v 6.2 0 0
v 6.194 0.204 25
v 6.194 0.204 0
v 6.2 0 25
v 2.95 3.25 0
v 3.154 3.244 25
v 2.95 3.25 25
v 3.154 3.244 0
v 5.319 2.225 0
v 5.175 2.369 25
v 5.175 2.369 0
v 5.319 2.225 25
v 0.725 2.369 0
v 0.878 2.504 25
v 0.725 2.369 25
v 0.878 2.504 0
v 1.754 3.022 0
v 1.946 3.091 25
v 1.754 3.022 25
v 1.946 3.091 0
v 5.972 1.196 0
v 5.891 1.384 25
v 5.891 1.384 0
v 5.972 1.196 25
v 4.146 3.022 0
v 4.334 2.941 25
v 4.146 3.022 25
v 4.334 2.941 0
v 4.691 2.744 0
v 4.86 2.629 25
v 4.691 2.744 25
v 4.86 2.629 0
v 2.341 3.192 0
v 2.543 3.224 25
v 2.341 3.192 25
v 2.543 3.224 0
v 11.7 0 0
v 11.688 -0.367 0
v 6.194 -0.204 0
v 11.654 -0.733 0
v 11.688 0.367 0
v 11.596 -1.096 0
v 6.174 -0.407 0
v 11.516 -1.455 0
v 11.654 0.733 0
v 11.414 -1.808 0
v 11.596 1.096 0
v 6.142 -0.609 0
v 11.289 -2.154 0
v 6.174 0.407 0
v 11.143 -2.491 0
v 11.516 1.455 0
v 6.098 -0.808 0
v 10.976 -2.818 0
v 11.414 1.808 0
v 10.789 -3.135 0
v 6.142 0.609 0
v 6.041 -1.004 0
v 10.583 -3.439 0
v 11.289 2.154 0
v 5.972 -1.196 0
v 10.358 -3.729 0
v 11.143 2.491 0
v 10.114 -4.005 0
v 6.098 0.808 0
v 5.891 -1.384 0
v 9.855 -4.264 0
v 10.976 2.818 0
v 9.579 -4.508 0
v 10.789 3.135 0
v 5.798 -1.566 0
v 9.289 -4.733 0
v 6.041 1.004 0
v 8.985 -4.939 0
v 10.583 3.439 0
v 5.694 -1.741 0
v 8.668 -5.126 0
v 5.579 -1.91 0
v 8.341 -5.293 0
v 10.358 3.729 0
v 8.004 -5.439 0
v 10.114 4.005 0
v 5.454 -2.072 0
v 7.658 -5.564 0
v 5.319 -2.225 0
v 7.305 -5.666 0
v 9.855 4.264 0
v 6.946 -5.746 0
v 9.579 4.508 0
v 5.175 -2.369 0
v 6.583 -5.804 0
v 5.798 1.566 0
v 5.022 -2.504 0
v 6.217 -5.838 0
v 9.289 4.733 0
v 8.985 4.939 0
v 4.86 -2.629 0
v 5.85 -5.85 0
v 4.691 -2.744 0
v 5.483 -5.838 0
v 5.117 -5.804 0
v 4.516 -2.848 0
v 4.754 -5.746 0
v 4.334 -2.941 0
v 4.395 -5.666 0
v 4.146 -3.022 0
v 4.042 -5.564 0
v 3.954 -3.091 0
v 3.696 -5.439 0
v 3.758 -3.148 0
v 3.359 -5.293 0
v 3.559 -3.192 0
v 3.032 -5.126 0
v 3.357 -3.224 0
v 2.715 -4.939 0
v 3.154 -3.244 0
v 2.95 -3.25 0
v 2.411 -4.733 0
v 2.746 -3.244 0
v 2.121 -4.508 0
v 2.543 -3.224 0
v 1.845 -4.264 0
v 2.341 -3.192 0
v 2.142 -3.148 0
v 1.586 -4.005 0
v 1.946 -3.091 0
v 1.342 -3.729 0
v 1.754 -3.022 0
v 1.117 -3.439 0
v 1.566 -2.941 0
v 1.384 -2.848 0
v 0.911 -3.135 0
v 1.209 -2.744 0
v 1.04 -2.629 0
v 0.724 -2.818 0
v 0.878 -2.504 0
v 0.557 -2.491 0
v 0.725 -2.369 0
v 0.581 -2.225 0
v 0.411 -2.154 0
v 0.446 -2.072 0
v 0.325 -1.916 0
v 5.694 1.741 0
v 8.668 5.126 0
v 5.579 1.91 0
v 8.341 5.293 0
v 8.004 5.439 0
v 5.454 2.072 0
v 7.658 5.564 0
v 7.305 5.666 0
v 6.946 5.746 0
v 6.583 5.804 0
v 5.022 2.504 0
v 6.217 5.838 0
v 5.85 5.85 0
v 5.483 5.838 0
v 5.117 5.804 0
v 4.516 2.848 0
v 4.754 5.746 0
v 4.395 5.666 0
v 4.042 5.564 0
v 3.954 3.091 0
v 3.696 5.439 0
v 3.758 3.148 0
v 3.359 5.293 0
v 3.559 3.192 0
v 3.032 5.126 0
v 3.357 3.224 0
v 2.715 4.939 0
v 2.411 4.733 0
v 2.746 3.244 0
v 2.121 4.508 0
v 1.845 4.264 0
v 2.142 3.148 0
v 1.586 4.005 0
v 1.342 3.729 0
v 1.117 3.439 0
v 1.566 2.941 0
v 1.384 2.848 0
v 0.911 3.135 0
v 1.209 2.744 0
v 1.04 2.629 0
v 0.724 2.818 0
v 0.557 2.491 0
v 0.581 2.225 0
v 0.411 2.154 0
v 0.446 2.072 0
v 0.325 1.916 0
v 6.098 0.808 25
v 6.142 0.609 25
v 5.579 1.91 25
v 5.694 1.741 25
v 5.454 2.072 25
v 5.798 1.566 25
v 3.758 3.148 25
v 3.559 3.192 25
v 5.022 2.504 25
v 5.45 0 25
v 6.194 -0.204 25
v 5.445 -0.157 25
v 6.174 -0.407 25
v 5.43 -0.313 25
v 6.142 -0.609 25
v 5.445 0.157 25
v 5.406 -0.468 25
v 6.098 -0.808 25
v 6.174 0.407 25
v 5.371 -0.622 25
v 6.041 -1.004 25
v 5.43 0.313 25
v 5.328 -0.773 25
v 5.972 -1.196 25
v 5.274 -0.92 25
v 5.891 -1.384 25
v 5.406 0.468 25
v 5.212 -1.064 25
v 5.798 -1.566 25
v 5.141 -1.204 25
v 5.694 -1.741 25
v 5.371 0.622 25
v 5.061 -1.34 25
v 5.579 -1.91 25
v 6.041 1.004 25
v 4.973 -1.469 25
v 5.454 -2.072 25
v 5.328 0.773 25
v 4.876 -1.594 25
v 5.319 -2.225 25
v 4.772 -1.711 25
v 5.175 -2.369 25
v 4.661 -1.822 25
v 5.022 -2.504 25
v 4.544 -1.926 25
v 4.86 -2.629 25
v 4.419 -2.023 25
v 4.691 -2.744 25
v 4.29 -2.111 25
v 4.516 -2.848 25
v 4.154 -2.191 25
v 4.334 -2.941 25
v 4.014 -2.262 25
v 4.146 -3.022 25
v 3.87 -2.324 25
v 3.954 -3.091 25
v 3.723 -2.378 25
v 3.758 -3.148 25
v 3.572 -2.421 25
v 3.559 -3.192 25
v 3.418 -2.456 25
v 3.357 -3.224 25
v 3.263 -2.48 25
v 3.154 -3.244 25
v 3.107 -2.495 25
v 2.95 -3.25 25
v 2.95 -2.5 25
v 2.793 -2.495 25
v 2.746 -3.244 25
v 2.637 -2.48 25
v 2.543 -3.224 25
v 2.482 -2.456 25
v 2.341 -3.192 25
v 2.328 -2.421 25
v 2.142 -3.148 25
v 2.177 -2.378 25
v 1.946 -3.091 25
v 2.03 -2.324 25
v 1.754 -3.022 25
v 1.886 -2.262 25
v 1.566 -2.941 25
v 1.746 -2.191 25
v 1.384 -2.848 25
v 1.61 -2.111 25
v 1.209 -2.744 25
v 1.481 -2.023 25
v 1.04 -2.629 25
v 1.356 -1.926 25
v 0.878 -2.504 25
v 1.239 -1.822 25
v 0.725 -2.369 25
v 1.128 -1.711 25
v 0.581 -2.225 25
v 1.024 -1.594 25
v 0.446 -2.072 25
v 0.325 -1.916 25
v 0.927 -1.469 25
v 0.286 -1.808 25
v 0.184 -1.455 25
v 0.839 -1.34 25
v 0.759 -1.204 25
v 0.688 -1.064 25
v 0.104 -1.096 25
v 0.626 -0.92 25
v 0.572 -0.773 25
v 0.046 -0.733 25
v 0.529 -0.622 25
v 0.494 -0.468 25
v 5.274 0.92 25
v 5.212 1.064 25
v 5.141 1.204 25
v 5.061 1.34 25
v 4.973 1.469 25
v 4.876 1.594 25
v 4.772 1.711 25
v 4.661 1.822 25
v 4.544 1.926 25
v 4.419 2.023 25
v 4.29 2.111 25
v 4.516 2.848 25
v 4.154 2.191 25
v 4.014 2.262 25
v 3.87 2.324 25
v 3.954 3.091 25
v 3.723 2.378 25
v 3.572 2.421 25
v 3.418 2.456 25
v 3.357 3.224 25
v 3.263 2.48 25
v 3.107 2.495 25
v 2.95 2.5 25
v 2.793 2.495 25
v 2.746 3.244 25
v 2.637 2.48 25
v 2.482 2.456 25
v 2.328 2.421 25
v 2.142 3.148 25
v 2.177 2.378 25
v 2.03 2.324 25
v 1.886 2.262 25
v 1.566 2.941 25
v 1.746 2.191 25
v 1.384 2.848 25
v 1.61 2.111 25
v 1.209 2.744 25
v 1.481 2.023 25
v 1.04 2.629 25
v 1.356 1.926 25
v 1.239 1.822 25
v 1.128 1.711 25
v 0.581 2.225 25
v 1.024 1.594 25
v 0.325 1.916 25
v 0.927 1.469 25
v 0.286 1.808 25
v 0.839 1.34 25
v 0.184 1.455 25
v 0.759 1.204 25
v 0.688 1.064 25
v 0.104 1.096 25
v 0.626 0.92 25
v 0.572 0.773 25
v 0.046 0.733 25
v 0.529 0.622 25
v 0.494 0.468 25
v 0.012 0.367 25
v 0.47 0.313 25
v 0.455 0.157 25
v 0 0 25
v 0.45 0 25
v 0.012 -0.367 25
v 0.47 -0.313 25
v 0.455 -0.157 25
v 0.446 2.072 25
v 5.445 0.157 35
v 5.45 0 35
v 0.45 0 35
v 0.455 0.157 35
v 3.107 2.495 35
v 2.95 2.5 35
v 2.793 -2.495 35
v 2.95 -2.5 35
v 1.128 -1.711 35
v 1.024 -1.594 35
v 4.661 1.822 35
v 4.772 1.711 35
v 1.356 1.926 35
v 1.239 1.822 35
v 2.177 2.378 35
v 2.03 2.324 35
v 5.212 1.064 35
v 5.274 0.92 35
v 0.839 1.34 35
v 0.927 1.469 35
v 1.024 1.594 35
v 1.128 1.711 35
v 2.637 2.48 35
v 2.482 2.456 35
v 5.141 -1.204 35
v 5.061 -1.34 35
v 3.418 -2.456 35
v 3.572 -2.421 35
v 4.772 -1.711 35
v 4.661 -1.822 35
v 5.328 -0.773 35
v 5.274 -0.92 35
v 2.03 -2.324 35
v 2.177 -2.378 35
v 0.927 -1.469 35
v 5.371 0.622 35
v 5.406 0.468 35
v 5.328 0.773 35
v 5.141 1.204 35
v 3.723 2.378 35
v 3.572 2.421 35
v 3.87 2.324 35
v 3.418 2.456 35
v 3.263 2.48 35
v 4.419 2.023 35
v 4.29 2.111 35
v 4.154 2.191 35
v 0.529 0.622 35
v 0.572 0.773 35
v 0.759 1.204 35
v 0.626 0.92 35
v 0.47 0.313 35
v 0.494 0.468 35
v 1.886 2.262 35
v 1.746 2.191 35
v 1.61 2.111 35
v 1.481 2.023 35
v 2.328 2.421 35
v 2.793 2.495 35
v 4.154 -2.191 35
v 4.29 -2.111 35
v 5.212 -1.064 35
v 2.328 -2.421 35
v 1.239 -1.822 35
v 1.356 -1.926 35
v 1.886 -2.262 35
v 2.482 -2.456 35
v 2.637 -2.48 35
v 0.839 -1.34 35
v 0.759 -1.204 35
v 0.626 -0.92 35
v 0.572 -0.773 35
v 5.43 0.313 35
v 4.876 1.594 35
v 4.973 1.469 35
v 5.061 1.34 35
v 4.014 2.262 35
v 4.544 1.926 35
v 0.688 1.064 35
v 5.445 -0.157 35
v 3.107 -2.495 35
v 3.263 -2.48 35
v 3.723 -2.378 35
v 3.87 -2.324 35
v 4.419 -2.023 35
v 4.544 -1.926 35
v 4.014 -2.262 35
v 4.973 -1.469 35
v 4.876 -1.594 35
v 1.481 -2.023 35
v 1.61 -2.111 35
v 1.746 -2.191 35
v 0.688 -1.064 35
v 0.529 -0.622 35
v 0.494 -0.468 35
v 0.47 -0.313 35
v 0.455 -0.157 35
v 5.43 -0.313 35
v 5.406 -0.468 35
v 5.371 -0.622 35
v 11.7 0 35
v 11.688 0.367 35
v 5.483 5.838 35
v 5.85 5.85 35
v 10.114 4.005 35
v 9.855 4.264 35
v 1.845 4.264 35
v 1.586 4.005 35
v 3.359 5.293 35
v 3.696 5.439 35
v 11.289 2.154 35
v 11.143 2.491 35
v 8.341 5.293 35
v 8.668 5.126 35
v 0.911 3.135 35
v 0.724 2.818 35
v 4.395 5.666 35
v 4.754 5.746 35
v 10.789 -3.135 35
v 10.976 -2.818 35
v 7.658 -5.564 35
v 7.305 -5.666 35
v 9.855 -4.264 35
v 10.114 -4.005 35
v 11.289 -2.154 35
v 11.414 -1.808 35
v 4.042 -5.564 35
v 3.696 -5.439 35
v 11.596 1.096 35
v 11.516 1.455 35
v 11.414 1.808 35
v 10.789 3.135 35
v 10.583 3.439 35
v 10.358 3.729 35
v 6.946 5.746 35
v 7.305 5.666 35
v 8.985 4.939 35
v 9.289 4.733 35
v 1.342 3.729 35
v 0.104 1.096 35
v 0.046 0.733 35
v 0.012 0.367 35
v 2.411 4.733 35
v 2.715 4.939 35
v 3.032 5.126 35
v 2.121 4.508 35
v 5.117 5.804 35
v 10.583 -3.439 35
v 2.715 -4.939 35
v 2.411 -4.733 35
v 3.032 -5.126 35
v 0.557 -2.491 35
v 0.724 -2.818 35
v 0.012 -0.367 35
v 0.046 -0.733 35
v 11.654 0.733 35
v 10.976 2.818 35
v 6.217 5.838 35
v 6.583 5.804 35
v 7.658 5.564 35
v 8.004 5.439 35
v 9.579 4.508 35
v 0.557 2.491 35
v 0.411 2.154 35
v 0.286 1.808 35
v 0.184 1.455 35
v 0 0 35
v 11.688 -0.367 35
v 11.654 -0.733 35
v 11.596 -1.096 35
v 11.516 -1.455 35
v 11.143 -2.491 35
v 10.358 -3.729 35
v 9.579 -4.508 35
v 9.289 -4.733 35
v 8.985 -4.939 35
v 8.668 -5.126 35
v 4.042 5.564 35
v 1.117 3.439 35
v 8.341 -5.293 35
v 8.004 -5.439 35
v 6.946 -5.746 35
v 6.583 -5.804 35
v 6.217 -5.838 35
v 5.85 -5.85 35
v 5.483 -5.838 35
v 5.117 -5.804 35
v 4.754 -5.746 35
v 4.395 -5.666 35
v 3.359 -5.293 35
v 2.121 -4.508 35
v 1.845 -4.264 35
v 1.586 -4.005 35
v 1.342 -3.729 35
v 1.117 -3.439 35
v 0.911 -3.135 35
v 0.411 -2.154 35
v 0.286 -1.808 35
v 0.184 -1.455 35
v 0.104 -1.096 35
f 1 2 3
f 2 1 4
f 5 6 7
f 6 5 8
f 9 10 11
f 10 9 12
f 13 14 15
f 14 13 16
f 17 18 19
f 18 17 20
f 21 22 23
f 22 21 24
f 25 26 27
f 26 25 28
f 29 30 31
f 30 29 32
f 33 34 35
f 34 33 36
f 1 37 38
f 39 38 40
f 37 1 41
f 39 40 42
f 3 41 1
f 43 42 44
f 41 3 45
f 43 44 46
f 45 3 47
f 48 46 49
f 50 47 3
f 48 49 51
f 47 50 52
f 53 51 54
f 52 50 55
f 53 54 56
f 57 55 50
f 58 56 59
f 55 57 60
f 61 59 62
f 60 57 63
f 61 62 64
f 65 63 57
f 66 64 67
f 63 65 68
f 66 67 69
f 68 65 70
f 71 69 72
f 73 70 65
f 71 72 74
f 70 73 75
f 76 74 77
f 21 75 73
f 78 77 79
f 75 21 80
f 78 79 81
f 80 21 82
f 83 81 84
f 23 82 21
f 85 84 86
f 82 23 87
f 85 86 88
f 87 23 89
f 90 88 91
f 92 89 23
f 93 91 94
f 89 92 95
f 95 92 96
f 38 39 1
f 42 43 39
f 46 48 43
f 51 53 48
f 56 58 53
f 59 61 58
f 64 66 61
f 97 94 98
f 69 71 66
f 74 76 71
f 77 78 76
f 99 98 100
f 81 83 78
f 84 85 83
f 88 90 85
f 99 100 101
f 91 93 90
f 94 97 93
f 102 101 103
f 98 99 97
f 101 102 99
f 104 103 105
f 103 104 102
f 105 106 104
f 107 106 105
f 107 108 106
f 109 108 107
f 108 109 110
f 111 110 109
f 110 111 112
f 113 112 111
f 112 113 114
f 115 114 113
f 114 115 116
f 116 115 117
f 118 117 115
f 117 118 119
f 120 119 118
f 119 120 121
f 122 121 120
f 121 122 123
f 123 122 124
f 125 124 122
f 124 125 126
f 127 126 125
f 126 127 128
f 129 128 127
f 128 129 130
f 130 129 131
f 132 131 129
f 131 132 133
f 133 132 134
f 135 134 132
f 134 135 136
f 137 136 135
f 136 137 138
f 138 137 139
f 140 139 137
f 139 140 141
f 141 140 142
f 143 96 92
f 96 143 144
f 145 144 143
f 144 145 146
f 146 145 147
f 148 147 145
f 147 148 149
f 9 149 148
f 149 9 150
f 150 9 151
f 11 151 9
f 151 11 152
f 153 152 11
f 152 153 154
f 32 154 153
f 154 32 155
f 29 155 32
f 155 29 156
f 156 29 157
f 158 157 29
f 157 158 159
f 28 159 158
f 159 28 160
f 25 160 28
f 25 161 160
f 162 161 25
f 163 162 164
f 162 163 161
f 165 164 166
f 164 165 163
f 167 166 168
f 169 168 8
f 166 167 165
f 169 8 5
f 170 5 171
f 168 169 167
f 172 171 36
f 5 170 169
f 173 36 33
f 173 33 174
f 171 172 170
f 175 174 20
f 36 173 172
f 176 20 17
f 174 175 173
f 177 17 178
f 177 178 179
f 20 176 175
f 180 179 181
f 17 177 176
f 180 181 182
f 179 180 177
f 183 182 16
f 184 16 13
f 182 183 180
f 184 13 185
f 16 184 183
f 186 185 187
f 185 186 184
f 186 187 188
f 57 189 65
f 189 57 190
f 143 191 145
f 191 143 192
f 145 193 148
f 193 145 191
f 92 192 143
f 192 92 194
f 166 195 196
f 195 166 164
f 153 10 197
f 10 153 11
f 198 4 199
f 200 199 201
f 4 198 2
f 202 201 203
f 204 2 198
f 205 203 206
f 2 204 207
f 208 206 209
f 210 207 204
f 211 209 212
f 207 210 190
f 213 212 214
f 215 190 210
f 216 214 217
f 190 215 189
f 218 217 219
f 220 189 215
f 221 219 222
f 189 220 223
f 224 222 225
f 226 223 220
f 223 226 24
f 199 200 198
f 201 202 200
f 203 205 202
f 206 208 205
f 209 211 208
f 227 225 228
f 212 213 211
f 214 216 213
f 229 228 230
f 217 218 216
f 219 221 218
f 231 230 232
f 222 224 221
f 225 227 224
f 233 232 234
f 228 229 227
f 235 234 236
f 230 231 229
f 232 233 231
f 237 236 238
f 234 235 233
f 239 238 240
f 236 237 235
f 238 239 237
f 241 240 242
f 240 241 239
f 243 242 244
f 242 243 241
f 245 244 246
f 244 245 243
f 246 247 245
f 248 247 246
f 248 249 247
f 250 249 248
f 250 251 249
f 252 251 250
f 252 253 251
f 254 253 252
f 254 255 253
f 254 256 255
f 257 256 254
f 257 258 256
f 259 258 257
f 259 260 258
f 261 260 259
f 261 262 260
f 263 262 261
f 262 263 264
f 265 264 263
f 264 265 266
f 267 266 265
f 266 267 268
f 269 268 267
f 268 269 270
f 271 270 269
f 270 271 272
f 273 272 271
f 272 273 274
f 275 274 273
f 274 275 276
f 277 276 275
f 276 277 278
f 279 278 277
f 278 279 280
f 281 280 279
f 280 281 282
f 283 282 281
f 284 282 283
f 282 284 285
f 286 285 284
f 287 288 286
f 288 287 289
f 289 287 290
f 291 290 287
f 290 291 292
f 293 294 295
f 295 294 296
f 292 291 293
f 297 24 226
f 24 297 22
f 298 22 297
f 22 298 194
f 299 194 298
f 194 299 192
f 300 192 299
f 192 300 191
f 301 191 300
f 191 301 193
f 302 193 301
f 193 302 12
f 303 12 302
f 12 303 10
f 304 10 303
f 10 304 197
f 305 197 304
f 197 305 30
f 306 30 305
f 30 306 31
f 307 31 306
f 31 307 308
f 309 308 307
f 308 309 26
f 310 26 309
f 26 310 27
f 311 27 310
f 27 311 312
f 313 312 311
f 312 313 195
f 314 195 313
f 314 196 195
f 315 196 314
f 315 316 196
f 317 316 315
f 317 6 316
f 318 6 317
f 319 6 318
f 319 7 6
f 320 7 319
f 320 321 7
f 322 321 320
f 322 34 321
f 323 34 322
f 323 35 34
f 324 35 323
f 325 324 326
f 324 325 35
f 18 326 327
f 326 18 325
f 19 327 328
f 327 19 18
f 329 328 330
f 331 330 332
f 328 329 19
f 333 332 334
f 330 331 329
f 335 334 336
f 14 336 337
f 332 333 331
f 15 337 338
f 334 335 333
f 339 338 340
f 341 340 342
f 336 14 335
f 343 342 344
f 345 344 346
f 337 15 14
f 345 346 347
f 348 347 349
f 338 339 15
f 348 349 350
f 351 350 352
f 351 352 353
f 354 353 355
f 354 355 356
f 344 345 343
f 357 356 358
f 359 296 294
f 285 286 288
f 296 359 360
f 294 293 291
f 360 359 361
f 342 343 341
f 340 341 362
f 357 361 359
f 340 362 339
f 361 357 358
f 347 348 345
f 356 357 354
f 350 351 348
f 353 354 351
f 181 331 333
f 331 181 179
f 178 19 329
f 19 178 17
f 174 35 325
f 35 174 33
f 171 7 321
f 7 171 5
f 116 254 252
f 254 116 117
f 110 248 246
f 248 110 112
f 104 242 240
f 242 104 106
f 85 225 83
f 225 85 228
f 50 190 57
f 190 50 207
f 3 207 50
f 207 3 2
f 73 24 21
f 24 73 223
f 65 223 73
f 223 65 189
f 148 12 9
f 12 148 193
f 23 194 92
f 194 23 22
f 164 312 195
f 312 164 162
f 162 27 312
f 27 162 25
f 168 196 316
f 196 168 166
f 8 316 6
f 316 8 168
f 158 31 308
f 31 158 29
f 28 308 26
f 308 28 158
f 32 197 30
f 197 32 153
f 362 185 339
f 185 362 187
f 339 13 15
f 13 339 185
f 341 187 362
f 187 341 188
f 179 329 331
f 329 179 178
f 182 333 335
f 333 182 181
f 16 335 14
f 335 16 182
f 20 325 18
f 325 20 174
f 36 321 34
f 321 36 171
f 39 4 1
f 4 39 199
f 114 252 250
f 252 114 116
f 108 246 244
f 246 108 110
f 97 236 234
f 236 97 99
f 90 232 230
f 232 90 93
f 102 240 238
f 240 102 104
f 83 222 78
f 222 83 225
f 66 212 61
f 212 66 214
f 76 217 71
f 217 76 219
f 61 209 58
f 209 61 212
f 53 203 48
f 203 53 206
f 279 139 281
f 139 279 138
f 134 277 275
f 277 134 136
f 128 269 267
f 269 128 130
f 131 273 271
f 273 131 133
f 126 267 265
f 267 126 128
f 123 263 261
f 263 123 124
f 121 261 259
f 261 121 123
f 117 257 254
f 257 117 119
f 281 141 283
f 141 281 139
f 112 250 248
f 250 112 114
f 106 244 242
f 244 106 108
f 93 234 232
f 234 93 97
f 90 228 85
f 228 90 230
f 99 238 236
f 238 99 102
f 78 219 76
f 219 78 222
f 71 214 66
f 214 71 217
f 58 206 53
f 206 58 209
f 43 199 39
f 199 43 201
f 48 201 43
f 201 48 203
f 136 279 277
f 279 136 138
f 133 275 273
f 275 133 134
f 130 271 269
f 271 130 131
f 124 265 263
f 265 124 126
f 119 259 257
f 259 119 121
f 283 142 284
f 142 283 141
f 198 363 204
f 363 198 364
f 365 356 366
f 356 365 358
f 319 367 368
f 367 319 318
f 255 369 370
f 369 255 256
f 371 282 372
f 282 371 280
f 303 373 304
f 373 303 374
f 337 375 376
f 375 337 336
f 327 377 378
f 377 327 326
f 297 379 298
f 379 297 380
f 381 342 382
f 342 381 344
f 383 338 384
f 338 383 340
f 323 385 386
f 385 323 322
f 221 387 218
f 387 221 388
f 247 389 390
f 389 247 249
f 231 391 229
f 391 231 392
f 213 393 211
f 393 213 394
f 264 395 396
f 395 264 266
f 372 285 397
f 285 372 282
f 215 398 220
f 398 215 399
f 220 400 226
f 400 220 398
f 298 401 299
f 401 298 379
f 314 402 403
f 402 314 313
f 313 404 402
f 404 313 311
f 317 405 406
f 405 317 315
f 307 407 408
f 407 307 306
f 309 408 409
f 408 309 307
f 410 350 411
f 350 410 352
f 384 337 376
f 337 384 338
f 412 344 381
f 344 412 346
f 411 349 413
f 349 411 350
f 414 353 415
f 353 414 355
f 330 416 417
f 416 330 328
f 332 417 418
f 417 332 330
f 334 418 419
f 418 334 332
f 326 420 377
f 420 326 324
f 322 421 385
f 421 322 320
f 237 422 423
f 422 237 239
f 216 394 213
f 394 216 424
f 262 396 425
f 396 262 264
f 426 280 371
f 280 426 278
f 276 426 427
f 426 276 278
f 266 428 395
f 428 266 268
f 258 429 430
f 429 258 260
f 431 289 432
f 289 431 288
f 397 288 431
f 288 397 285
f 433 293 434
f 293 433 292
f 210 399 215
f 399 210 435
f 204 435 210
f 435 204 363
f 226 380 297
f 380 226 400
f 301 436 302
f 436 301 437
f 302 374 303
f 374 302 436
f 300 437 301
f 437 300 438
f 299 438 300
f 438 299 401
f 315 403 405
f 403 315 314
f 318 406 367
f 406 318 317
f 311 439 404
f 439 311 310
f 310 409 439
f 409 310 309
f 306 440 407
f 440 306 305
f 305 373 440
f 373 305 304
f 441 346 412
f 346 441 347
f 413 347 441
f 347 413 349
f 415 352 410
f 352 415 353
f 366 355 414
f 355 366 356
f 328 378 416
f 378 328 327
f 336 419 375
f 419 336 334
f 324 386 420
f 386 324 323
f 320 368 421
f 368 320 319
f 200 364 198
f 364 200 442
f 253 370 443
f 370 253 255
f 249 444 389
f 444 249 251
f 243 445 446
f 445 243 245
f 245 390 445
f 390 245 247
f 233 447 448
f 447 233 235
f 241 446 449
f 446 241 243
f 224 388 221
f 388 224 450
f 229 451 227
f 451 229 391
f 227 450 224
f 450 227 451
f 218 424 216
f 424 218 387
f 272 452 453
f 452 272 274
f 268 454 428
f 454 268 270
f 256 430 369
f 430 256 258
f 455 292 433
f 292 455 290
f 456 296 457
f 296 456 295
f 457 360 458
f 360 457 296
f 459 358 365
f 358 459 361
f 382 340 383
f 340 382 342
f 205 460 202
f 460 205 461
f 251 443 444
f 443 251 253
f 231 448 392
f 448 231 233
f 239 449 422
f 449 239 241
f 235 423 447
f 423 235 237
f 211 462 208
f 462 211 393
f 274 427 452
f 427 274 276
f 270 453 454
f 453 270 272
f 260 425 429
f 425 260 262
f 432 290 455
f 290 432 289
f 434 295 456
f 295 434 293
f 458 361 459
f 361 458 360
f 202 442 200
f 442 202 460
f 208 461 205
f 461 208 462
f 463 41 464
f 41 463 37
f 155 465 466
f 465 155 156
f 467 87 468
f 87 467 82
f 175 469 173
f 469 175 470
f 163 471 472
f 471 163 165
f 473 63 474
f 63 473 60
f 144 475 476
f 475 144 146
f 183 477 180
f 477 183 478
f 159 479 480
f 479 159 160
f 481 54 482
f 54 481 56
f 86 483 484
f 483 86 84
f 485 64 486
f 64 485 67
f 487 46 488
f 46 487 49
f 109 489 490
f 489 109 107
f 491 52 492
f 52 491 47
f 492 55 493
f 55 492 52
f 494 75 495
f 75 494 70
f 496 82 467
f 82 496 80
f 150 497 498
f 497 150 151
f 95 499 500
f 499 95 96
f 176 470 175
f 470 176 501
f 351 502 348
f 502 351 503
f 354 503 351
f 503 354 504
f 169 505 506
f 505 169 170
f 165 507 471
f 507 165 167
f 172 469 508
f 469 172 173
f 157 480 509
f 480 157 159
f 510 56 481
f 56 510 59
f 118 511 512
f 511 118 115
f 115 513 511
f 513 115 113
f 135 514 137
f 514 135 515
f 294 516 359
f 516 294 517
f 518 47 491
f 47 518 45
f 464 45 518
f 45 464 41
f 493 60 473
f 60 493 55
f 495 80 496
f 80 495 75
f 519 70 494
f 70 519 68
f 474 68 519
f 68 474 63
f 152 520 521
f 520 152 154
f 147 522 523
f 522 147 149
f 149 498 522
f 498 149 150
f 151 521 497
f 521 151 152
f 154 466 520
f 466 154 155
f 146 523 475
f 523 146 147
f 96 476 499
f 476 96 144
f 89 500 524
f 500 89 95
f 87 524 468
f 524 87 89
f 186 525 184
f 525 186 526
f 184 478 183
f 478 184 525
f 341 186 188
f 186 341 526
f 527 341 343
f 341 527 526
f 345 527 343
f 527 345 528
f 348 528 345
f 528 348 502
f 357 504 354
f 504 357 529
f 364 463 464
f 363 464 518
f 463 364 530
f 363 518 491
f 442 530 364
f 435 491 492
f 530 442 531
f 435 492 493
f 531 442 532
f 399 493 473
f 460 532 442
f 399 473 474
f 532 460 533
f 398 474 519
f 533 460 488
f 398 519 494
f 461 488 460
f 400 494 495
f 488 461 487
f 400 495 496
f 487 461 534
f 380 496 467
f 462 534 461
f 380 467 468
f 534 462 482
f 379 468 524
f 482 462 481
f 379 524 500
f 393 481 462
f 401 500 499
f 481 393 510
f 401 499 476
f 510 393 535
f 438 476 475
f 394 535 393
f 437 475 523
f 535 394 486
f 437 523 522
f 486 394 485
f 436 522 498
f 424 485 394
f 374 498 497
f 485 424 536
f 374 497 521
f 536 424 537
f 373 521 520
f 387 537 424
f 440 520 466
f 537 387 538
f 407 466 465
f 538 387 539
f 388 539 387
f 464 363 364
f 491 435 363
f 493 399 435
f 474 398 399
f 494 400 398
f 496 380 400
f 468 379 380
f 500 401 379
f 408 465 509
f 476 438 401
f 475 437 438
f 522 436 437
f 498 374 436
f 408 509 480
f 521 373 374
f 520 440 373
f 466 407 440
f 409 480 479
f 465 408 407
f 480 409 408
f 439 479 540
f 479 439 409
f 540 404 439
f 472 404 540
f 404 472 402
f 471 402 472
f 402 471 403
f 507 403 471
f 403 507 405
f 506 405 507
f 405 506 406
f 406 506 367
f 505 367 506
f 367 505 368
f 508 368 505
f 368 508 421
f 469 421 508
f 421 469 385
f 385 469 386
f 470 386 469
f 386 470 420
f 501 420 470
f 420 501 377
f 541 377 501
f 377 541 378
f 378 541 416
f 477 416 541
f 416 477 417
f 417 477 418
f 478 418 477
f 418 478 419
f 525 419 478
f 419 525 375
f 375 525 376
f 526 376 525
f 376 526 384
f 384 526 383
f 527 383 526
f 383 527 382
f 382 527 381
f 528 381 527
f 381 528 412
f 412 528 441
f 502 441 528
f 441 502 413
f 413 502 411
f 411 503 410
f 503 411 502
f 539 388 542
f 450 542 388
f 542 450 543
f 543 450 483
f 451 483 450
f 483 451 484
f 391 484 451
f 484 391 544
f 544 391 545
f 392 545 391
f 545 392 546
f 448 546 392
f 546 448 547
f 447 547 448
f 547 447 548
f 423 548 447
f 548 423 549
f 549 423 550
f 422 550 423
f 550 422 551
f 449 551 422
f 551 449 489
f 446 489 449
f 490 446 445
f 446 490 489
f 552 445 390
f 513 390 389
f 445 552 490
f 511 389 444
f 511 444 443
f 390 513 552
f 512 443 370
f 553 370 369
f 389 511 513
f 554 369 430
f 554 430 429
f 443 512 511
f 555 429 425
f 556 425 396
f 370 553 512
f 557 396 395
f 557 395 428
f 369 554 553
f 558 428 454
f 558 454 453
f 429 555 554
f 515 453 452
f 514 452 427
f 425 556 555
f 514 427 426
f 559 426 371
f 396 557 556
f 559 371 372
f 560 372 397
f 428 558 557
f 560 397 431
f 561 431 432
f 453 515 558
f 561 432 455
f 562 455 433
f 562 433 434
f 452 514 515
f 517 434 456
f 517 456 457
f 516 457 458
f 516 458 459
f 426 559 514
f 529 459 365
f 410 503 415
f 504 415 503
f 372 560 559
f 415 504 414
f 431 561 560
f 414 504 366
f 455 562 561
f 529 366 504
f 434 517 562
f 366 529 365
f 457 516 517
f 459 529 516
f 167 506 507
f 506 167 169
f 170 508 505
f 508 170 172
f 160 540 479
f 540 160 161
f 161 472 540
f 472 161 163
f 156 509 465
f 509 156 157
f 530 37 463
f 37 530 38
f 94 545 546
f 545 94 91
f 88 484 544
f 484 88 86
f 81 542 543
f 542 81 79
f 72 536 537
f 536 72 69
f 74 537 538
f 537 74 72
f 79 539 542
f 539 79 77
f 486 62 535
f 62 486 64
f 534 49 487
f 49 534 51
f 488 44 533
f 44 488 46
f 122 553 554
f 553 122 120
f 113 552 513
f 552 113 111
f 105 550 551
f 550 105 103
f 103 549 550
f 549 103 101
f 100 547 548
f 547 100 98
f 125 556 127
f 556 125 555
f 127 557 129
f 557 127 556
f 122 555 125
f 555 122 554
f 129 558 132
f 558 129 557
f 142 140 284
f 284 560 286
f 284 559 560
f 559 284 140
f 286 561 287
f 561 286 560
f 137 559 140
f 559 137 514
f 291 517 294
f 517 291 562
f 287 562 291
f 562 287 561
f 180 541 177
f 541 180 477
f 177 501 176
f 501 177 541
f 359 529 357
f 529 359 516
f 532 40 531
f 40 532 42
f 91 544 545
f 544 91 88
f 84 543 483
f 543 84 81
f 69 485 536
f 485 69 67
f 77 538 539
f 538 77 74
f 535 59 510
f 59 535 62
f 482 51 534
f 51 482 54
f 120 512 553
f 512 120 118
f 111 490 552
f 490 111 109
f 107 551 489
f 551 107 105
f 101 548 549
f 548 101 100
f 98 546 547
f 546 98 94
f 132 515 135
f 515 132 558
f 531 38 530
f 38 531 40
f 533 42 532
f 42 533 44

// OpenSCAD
$fn=100;

Ueberstand_Sensor = 0.3;
Tauchhuelse_Durchmesser = 12-Ueberstand_Sensor;

Fuehrung_Laenge = 35;

Sensor_Durchmesser = 6.5;
Sensor_Laenge = 25;
Kabel_Durchmesser = 5;

difference() {
    translate([Tauchhuelse_Durchmesser/2, 0, 0])
        cylinder(h=Fuehrung_Laenge, d=Tauchhuelse_Durchmesser);
    translate([Sensor_Durchmesser/2-Ueberstand_Sensor, 0, 0])
    {
        cylinder(h=Sensor_Laenge, d=Sensor_Durchmesser);
        cylinder(h=100, d=Kabel_Durchmesser);
    }
}
